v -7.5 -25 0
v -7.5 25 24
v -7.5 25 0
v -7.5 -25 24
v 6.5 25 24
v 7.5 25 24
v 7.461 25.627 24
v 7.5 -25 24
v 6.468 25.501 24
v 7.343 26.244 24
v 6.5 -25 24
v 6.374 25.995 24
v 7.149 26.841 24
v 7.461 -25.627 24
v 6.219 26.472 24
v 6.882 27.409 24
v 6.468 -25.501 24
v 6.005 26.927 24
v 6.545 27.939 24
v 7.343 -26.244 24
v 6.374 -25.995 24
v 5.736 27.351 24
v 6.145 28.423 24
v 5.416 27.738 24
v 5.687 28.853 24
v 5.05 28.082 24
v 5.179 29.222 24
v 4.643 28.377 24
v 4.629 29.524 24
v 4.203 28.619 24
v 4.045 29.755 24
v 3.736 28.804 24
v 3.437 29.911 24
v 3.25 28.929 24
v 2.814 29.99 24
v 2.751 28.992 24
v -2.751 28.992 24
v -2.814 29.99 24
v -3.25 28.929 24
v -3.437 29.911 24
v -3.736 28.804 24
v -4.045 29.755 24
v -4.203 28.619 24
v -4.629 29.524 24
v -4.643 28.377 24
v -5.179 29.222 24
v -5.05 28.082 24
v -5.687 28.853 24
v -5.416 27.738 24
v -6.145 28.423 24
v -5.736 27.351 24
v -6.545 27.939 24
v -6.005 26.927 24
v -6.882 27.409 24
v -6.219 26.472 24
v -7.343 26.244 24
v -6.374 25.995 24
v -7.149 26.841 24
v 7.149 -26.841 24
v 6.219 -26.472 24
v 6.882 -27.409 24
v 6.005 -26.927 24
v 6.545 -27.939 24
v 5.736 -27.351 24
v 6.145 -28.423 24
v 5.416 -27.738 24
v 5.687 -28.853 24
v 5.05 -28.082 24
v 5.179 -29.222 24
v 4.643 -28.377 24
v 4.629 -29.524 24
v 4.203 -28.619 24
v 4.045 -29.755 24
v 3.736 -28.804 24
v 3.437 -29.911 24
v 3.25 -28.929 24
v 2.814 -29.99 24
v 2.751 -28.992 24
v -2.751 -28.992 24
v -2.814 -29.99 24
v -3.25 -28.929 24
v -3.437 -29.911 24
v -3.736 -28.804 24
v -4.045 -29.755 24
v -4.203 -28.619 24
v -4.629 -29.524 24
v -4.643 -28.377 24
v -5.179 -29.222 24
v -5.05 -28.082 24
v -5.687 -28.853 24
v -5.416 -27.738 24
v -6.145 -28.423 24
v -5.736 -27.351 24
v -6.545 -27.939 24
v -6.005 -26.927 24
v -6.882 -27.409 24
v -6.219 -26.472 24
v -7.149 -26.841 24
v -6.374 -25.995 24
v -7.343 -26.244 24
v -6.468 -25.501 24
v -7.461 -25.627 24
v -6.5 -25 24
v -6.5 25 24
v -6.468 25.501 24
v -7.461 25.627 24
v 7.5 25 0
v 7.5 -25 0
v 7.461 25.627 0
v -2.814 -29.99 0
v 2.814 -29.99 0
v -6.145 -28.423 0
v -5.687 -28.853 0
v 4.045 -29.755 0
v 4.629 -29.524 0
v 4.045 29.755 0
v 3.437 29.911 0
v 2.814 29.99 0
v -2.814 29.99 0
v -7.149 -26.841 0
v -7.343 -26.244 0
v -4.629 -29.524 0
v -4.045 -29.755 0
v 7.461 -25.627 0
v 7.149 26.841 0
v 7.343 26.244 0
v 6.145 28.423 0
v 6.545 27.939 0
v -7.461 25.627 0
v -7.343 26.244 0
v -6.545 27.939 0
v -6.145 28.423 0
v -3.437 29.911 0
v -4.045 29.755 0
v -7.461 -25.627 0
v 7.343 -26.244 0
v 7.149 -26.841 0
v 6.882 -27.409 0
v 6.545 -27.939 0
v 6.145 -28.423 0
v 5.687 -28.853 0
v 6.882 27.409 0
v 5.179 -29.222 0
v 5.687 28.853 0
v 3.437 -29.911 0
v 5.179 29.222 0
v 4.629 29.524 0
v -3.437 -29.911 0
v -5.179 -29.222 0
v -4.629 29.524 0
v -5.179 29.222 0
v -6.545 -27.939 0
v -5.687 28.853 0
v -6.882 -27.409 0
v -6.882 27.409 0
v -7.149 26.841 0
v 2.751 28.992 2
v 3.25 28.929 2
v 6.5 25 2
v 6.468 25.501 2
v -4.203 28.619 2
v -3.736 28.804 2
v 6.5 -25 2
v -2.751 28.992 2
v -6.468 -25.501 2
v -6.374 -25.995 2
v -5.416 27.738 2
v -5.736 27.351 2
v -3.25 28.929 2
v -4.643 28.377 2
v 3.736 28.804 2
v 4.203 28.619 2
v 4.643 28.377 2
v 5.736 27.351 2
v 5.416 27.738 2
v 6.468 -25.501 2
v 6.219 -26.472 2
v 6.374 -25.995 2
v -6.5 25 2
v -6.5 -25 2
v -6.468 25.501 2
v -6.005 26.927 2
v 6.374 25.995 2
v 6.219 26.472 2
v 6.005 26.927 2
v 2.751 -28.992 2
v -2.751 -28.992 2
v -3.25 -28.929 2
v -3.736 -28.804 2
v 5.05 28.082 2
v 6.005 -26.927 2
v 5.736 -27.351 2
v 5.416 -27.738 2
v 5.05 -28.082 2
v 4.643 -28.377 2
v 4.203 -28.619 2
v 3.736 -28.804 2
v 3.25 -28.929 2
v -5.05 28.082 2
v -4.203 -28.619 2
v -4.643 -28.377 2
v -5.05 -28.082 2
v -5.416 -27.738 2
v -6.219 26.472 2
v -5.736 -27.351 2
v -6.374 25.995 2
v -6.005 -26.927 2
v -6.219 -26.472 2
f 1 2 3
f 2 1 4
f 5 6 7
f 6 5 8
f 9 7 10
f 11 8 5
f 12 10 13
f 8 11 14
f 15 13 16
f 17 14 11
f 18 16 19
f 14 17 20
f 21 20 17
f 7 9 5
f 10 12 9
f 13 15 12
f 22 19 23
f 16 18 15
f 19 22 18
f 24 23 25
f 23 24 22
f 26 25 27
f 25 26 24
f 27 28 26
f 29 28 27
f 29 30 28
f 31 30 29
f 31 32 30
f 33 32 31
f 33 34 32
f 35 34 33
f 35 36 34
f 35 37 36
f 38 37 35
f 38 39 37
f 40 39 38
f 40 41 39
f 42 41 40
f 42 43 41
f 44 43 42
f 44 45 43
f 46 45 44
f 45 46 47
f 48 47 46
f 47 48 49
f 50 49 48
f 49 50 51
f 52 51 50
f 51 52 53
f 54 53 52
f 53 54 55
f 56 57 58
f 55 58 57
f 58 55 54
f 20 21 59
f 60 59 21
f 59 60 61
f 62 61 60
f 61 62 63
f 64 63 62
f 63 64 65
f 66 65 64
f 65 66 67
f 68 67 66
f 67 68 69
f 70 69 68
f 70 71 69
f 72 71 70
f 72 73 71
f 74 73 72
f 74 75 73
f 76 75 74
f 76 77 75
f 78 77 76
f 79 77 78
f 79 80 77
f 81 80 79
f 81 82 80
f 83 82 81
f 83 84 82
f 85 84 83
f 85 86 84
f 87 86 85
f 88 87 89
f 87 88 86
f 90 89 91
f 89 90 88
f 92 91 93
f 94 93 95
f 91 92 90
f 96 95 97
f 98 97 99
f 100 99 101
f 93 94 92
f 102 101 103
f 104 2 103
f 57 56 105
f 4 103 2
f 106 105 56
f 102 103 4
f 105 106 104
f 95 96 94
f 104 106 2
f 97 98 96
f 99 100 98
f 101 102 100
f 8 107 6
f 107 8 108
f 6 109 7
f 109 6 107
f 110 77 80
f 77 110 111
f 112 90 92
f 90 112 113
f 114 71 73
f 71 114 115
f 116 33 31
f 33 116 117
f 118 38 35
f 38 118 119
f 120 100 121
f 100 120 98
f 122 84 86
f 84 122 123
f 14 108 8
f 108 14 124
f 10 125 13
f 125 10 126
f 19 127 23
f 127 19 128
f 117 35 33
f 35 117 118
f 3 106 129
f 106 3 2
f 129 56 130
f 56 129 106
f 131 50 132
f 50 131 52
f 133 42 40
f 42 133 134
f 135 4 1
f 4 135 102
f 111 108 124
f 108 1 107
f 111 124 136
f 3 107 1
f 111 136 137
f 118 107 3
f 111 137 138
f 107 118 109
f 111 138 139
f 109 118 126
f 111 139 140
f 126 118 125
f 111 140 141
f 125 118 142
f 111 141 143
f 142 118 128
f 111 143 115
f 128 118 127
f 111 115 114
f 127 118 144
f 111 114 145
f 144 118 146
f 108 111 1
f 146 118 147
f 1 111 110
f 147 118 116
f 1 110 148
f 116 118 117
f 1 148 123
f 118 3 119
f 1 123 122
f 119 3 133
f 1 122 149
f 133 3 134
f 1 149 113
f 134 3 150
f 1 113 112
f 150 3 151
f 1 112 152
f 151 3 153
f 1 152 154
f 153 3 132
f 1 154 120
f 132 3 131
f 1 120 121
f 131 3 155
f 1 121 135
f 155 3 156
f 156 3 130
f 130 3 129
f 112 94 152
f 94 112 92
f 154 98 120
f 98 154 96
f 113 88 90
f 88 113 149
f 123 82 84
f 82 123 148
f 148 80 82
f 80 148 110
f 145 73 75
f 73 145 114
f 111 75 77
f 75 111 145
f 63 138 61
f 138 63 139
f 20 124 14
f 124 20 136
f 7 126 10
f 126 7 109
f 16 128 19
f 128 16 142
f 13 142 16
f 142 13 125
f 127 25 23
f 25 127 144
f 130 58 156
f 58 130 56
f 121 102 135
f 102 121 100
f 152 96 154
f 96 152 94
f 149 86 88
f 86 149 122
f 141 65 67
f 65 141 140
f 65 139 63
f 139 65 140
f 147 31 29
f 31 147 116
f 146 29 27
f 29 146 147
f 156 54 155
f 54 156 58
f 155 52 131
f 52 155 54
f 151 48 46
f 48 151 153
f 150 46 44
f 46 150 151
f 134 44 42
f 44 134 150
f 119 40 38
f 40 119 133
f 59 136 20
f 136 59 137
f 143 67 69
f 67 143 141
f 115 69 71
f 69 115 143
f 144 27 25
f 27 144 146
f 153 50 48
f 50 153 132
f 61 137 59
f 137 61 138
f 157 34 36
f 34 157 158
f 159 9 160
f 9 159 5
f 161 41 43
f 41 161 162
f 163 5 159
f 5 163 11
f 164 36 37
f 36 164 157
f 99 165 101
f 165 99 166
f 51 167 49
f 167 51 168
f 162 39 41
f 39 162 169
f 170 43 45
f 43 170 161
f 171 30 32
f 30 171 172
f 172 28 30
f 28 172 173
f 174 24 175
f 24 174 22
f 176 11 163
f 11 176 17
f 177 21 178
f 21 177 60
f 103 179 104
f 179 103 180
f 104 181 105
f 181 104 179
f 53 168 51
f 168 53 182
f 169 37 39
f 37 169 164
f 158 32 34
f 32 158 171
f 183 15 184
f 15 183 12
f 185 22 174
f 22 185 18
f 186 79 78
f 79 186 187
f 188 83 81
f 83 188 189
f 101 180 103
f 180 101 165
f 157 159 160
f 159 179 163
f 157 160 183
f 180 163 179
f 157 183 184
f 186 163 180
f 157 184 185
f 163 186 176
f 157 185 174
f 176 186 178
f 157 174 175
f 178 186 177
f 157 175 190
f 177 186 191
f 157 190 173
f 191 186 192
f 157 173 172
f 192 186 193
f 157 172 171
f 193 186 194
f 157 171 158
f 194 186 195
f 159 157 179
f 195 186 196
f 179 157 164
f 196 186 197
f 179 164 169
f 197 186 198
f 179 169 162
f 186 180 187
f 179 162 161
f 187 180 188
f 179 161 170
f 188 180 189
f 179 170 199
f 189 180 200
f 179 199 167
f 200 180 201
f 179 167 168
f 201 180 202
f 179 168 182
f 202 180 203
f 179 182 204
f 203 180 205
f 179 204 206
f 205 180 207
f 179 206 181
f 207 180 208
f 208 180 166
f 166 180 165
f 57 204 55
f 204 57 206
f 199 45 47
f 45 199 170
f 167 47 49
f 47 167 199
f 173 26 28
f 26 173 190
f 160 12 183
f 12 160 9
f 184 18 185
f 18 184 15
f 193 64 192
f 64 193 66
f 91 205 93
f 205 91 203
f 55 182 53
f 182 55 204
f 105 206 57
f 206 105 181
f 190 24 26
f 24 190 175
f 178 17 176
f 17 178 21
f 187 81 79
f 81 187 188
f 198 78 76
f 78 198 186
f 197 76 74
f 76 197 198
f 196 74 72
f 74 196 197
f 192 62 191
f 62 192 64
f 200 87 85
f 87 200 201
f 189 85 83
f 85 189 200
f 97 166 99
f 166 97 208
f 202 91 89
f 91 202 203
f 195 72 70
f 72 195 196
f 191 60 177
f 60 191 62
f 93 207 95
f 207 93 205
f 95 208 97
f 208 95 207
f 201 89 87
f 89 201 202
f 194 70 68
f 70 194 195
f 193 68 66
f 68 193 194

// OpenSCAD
$fn = 50;


difference() {
	union() {
		hull() {
			translate(v = [-2.5000000000, 25.0000000000, 0]) {
				cylinder(h = 24, r = 5);
			}
			translate(v = [2.5000000000, 25.0000000000, 0]) {
				cylinder(h = 24, r = 5);
			}
			translate(v = [-2.5000000000, -25.0000000000, 0]) {
				cylinder(h = 24, r = 5);
			}
			translate(v = [2.5000000000, -25.0000000000, 0]) {
				cylinder(h = 24, r = 5);
			}
		}
	}
	union() {
		translate(v = [0, 0, 2]) {
			#hull() {
				translate(v = [-2.5000000000, 25.0000000000, 0]) {
					cylinder(h = 22, r = 4);
				}
				translate(v = [2.5000000000, 25.0000000000, 0]) {
					cylinder(h = 22, r = 4);
				}
				translate(v = [-2.5000000000, -25.0000000000, 0]) {
					cylinder(h = 22, r = 4);
				}
				translate(v = [2.5000000000, -25.0000000000, 0]) {
					cylinder(h = 22, r = 4);
				}
			}
		}
	}
}
